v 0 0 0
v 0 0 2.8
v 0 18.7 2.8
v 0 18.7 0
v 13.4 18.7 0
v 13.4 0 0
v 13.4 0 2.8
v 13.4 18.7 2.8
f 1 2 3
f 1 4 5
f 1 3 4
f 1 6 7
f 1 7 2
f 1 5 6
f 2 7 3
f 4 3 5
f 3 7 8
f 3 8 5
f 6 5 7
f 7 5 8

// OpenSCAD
/* Warning, this is a very basic generator with a lot of approximation 
input data : [MODULE, ZRX, 13.4X18.7x2.8mm, 30, , B, C04-10051B]
generated by com.zoubworld.electronics.cad.model3d.Basic
Date : Sun Feb 15 10:50:49 CET 2026
*/

//body
color("black")
translate([0,0,0])
cube([13.4,18.7,2.8], center=false);
